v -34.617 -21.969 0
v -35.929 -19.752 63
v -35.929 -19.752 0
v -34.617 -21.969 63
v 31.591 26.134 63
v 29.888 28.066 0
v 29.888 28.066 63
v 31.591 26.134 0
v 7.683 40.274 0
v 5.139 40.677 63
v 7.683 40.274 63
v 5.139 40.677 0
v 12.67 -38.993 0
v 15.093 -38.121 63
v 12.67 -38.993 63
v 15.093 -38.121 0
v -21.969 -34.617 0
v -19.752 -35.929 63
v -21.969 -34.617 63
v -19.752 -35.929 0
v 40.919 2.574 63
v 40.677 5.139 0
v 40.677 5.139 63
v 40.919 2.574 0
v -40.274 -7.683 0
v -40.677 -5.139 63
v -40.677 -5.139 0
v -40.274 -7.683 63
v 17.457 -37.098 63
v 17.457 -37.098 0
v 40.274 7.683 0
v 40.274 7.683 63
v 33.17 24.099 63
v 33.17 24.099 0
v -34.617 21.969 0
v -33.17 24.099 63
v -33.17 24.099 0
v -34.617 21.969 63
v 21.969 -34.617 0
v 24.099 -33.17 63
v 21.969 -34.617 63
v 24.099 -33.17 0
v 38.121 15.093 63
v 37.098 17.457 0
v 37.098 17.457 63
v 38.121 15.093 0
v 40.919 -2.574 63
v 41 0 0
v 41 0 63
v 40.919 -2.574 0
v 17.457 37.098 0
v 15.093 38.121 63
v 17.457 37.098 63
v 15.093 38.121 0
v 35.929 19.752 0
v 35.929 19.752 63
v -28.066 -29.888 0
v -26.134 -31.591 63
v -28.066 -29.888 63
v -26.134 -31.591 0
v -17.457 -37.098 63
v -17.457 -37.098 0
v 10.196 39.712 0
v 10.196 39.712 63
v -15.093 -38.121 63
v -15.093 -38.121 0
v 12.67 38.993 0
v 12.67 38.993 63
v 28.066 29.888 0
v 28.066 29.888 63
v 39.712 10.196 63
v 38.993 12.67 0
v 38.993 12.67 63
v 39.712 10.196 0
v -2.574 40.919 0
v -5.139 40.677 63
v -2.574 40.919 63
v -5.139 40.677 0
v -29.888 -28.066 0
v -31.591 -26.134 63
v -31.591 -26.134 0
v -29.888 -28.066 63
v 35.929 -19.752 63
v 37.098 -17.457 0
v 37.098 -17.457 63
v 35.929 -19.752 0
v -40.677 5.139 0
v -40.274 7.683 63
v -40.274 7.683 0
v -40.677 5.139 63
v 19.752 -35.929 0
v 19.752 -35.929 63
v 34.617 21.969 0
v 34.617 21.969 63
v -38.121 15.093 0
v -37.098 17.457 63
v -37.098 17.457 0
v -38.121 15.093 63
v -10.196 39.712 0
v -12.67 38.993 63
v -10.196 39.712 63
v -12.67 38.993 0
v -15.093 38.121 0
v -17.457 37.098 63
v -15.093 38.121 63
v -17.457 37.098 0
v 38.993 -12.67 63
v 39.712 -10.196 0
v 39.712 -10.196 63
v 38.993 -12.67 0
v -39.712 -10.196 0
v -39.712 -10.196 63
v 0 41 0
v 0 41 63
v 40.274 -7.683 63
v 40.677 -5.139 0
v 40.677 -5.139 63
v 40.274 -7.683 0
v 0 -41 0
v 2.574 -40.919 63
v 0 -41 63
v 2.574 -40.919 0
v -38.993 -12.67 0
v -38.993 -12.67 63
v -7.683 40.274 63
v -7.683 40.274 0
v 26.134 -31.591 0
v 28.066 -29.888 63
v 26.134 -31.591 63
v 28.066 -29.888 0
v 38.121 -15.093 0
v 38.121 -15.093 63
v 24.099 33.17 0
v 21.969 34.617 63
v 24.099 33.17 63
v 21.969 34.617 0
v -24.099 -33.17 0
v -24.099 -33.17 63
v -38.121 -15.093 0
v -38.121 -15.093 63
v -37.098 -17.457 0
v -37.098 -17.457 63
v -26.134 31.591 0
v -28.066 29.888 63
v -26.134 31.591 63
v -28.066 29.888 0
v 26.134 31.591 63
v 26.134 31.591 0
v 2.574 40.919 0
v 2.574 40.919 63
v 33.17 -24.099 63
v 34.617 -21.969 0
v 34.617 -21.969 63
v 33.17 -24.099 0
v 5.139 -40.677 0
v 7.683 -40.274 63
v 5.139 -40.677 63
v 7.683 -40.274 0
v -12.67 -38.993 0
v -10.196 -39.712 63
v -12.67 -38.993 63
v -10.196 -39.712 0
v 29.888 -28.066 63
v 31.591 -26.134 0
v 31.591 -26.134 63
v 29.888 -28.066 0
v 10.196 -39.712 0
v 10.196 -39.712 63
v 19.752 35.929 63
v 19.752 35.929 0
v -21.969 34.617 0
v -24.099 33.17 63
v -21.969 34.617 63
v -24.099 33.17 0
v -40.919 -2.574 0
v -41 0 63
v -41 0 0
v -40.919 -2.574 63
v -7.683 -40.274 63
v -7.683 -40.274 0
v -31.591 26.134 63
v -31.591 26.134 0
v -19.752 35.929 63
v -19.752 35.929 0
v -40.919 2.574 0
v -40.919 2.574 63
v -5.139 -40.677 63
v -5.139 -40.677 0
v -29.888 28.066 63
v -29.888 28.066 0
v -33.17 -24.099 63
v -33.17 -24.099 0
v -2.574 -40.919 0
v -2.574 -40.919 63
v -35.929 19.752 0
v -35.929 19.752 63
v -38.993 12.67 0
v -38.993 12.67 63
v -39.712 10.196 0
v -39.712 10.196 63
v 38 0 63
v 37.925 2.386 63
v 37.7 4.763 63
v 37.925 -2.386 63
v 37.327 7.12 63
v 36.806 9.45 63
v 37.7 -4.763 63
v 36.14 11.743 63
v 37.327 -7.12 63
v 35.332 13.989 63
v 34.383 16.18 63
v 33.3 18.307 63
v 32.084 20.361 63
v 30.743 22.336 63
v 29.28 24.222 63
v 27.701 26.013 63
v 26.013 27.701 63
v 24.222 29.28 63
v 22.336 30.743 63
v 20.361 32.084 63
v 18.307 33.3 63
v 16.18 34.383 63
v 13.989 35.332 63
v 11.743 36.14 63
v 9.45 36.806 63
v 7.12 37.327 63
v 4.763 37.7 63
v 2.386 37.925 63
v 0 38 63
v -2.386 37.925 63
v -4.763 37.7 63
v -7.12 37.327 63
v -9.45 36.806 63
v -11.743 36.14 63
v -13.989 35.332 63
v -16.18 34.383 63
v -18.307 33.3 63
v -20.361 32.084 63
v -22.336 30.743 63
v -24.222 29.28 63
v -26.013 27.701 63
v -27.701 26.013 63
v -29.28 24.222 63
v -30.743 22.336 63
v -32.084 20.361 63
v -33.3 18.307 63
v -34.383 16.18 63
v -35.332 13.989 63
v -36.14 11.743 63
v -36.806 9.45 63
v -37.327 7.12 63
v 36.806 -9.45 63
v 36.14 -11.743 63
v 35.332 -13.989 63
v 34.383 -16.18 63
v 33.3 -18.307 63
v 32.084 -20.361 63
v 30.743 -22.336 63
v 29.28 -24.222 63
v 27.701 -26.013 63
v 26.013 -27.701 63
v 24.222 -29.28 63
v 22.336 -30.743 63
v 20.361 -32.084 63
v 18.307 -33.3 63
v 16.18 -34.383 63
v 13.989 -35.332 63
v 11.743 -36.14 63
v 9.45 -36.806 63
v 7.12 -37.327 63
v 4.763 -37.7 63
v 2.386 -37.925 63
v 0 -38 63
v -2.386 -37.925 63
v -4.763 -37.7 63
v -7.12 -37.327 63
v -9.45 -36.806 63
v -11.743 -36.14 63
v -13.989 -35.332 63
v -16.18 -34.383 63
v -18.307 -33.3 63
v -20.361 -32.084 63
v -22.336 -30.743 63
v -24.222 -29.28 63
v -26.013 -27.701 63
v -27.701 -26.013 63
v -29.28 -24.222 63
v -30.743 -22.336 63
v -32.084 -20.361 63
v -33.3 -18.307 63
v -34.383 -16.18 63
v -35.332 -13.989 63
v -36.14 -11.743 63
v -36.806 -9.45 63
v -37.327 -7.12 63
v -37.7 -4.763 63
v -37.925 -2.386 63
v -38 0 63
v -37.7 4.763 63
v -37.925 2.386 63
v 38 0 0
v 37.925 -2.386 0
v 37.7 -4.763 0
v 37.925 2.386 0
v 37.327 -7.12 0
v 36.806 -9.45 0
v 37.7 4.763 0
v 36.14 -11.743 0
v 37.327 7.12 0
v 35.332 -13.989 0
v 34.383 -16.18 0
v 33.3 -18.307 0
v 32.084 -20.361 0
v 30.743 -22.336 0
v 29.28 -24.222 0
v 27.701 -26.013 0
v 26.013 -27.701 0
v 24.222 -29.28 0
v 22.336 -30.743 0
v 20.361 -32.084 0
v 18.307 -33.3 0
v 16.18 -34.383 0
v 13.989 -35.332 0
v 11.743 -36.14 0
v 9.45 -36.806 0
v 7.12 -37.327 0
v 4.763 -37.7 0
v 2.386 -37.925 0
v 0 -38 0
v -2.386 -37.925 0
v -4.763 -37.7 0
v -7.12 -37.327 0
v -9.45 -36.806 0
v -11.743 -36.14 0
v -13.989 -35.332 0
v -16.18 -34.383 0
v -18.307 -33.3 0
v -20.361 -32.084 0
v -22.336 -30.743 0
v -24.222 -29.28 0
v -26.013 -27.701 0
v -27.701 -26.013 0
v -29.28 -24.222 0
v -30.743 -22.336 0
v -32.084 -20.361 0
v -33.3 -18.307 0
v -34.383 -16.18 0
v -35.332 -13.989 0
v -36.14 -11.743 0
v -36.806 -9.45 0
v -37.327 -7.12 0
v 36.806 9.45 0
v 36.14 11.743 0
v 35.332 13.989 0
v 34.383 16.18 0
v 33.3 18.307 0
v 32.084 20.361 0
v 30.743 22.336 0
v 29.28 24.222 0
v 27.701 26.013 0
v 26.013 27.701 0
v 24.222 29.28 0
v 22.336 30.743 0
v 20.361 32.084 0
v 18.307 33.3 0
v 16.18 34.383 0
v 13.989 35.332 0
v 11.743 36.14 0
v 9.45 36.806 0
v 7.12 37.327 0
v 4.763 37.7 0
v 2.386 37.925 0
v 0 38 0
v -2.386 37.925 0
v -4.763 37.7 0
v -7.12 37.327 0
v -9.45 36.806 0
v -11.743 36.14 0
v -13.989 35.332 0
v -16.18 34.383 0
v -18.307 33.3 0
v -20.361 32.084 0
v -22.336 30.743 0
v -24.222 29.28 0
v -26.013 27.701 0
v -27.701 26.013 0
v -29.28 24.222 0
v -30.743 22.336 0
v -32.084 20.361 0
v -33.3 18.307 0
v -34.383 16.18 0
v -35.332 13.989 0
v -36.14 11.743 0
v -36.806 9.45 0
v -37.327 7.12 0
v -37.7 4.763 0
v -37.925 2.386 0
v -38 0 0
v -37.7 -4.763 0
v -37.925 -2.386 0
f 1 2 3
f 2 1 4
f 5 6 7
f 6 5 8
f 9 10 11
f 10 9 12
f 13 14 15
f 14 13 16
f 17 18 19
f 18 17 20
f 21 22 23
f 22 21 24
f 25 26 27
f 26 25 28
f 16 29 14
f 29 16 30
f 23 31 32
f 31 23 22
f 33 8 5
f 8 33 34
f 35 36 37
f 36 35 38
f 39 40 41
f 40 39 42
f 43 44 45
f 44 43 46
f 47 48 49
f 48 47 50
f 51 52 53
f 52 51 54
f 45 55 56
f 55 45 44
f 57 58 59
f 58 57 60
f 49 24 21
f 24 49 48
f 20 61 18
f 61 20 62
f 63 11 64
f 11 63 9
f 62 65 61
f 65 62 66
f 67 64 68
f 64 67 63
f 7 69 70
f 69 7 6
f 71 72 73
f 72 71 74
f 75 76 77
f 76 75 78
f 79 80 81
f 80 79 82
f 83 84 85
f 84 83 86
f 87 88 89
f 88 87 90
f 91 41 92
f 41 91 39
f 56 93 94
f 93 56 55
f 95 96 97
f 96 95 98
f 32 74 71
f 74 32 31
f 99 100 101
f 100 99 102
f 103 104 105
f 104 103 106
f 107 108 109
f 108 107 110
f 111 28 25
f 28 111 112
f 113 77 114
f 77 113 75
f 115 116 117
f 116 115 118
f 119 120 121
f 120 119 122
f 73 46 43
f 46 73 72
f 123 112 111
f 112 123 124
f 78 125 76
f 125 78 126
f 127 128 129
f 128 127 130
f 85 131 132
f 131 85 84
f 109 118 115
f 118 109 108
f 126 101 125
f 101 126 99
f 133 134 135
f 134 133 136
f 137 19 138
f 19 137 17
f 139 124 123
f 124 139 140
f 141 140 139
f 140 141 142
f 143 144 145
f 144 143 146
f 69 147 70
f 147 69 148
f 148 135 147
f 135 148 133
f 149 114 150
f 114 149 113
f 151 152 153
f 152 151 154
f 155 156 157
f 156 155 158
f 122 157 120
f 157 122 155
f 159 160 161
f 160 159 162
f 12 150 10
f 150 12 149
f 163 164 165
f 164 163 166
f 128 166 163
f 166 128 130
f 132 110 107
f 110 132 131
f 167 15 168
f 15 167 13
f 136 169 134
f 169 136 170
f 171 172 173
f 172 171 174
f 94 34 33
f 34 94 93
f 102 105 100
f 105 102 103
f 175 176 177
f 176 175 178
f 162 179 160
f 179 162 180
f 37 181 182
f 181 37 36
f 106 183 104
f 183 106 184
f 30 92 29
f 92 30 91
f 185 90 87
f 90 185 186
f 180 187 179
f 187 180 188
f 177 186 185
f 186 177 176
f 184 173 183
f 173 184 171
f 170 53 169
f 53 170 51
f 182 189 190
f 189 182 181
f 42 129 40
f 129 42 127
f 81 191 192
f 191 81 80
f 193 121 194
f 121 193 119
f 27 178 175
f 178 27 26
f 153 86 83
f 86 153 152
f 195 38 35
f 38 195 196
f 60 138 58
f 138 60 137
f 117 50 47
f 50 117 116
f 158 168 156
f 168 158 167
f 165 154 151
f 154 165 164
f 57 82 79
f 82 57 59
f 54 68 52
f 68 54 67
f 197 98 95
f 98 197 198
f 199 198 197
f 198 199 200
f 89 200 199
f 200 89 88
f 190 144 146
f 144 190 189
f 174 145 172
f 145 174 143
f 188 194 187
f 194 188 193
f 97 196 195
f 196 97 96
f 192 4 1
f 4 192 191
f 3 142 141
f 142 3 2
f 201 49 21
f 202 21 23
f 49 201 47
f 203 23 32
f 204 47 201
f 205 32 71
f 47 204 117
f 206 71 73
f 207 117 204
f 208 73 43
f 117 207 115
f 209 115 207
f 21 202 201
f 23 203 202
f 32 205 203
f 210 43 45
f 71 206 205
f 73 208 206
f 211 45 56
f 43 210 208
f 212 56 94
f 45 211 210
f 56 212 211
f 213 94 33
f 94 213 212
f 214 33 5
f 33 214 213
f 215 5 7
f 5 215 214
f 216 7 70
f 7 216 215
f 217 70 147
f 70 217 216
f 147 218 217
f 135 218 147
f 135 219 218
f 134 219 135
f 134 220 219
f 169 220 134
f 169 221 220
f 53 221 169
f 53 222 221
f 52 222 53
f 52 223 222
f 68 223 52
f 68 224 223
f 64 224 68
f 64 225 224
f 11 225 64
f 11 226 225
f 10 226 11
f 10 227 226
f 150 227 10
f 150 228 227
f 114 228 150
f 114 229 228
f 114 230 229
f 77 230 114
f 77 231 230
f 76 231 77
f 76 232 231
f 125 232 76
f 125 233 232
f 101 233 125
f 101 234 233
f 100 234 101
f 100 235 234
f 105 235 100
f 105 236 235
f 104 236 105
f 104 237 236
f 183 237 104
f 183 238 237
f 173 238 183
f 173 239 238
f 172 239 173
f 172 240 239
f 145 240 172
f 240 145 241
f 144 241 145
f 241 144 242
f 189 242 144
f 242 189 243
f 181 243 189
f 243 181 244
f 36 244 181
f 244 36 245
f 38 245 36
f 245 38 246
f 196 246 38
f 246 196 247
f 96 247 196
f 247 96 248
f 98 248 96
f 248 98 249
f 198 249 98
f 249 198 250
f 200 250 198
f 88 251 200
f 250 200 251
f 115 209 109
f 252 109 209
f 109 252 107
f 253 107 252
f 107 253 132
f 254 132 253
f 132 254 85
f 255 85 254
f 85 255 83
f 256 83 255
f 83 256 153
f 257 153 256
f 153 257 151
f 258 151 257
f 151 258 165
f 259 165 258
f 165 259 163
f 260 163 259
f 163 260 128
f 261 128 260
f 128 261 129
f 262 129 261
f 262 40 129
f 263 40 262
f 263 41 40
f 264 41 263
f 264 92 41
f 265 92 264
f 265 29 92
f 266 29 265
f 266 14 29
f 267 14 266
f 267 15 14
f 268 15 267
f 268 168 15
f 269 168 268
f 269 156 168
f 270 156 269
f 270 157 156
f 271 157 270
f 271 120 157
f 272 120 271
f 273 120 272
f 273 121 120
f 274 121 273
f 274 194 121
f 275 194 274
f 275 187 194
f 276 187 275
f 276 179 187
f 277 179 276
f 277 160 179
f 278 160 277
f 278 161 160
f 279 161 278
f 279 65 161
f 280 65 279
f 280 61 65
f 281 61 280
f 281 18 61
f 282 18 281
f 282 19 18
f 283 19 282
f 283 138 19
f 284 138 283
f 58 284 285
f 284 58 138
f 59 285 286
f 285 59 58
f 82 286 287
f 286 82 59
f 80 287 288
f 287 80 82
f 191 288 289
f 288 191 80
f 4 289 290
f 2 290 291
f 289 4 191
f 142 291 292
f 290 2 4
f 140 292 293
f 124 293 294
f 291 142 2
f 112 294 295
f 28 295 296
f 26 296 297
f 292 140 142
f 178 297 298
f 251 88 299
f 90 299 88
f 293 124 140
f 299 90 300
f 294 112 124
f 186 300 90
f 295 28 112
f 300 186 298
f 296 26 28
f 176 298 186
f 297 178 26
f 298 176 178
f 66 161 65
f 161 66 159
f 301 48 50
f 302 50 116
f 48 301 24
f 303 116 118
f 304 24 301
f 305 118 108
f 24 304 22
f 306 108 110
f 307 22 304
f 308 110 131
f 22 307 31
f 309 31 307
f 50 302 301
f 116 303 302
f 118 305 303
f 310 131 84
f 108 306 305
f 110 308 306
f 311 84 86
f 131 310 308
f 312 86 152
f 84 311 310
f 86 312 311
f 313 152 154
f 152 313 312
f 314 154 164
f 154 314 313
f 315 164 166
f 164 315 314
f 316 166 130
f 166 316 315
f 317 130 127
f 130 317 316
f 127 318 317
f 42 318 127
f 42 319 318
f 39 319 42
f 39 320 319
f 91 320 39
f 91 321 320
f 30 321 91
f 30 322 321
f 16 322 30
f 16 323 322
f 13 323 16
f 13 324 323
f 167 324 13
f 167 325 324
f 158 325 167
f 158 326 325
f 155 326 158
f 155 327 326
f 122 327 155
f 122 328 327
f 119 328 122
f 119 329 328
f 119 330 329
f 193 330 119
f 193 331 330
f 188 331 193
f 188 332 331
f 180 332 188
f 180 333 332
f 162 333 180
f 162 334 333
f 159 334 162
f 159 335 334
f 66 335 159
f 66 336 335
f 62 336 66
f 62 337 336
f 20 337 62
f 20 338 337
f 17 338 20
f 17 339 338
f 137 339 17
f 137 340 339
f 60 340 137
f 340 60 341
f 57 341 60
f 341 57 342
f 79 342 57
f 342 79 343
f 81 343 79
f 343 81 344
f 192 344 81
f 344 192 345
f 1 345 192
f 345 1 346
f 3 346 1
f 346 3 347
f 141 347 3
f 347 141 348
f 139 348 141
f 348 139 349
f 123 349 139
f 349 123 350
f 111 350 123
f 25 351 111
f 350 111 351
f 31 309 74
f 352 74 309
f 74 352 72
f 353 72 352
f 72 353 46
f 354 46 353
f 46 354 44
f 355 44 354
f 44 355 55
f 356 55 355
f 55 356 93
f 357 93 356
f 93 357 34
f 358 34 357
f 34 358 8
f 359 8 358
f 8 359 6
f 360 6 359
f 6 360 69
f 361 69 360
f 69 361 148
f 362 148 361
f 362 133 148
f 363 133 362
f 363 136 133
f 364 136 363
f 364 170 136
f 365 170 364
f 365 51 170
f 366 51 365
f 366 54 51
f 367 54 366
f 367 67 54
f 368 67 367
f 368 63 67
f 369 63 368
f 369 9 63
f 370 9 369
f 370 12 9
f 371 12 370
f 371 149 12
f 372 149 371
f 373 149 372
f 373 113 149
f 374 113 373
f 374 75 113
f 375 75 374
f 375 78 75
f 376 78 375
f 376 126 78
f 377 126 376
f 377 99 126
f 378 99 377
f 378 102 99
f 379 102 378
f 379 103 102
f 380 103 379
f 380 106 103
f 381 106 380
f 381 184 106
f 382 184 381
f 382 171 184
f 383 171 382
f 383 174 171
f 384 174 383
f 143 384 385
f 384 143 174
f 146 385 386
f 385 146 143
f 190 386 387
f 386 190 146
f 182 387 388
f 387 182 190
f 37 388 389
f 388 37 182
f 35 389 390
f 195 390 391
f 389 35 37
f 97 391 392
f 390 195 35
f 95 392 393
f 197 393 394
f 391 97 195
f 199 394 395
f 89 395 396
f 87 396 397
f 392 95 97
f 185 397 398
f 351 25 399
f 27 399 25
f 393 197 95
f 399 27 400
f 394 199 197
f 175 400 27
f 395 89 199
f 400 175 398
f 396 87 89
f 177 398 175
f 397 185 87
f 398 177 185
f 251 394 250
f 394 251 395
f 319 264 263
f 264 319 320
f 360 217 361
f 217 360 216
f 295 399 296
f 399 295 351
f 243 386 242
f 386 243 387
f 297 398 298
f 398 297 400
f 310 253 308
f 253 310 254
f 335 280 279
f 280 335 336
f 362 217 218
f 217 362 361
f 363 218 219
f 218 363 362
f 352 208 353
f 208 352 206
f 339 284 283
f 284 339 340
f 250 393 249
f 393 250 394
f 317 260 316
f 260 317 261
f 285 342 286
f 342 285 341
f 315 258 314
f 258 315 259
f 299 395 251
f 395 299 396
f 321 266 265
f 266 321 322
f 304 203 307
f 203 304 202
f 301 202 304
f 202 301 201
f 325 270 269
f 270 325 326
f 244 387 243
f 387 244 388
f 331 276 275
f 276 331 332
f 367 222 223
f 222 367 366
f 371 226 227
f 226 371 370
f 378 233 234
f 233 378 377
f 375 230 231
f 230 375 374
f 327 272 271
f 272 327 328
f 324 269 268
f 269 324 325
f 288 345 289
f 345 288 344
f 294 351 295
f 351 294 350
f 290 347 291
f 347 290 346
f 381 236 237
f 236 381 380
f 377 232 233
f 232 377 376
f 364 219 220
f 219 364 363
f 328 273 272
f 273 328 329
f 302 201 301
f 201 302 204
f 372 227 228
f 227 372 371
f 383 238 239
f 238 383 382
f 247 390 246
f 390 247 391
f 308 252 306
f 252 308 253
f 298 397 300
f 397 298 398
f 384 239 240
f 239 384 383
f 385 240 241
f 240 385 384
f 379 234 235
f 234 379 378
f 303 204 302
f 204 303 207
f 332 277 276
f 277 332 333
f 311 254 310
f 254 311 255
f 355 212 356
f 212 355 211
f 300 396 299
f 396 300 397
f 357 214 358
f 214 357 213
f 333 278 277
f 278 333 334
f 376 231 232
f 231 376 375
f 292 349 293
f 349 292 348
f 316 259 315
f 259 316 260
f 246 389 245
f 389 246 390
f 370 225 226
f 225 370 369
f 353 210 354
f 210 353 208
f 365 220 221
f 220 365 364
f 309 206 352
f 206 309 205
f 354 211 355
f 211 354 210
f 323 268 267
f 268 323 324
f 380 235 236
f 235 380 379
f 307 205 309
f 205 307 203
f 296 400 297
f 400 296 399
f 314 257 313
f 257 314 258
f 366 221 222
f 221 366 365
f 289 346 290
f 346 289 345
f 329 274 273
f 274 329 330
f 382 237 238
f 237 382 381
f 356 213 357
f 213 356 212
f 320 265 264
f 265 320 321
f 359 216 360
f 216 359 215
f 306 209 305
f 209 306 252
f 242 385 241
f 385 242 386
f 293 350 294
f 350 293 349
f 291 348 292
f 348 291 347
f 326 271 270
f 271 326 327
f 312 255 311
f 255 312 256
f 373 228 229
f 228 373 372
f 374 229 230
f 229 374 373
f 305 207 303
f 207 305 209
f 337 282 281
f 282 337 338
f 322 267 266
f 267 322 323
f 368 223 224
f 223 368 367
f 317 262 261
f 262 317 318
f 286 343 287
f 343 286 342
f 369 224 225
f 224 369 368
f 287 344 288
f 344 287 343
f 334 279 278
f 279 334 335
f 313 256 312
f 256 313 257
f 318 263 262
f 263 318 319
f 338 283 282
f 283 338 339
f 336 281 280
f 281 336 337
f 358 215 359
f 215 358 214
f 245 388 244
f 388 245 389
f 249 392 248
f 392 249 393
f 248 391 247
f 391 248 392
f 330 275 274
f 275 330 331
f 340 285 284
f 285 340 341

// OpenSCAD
$fn = 100;

wall_thickness = 3;
cover_thickness = 6;

// Petri dish / membrane holder
petri_inner_diameter = 54;

// Legs
leg_diameter = 6;
leg_height = 60;

// Adjustable parameters
outer_diameter = petri_inner_diameter + 2 * (wall_thickness + leg_diameter + 1);

module blackout_cover() {
  difference() {
      cylinder(h = leg_height + wall_thickness, d = outer_diameter + 2 +cover_thickness);
      cylinder(h = leg_height + wall_thickness, d = outer_diameter + 2);
  }
}

// Render
blackout_cover();
